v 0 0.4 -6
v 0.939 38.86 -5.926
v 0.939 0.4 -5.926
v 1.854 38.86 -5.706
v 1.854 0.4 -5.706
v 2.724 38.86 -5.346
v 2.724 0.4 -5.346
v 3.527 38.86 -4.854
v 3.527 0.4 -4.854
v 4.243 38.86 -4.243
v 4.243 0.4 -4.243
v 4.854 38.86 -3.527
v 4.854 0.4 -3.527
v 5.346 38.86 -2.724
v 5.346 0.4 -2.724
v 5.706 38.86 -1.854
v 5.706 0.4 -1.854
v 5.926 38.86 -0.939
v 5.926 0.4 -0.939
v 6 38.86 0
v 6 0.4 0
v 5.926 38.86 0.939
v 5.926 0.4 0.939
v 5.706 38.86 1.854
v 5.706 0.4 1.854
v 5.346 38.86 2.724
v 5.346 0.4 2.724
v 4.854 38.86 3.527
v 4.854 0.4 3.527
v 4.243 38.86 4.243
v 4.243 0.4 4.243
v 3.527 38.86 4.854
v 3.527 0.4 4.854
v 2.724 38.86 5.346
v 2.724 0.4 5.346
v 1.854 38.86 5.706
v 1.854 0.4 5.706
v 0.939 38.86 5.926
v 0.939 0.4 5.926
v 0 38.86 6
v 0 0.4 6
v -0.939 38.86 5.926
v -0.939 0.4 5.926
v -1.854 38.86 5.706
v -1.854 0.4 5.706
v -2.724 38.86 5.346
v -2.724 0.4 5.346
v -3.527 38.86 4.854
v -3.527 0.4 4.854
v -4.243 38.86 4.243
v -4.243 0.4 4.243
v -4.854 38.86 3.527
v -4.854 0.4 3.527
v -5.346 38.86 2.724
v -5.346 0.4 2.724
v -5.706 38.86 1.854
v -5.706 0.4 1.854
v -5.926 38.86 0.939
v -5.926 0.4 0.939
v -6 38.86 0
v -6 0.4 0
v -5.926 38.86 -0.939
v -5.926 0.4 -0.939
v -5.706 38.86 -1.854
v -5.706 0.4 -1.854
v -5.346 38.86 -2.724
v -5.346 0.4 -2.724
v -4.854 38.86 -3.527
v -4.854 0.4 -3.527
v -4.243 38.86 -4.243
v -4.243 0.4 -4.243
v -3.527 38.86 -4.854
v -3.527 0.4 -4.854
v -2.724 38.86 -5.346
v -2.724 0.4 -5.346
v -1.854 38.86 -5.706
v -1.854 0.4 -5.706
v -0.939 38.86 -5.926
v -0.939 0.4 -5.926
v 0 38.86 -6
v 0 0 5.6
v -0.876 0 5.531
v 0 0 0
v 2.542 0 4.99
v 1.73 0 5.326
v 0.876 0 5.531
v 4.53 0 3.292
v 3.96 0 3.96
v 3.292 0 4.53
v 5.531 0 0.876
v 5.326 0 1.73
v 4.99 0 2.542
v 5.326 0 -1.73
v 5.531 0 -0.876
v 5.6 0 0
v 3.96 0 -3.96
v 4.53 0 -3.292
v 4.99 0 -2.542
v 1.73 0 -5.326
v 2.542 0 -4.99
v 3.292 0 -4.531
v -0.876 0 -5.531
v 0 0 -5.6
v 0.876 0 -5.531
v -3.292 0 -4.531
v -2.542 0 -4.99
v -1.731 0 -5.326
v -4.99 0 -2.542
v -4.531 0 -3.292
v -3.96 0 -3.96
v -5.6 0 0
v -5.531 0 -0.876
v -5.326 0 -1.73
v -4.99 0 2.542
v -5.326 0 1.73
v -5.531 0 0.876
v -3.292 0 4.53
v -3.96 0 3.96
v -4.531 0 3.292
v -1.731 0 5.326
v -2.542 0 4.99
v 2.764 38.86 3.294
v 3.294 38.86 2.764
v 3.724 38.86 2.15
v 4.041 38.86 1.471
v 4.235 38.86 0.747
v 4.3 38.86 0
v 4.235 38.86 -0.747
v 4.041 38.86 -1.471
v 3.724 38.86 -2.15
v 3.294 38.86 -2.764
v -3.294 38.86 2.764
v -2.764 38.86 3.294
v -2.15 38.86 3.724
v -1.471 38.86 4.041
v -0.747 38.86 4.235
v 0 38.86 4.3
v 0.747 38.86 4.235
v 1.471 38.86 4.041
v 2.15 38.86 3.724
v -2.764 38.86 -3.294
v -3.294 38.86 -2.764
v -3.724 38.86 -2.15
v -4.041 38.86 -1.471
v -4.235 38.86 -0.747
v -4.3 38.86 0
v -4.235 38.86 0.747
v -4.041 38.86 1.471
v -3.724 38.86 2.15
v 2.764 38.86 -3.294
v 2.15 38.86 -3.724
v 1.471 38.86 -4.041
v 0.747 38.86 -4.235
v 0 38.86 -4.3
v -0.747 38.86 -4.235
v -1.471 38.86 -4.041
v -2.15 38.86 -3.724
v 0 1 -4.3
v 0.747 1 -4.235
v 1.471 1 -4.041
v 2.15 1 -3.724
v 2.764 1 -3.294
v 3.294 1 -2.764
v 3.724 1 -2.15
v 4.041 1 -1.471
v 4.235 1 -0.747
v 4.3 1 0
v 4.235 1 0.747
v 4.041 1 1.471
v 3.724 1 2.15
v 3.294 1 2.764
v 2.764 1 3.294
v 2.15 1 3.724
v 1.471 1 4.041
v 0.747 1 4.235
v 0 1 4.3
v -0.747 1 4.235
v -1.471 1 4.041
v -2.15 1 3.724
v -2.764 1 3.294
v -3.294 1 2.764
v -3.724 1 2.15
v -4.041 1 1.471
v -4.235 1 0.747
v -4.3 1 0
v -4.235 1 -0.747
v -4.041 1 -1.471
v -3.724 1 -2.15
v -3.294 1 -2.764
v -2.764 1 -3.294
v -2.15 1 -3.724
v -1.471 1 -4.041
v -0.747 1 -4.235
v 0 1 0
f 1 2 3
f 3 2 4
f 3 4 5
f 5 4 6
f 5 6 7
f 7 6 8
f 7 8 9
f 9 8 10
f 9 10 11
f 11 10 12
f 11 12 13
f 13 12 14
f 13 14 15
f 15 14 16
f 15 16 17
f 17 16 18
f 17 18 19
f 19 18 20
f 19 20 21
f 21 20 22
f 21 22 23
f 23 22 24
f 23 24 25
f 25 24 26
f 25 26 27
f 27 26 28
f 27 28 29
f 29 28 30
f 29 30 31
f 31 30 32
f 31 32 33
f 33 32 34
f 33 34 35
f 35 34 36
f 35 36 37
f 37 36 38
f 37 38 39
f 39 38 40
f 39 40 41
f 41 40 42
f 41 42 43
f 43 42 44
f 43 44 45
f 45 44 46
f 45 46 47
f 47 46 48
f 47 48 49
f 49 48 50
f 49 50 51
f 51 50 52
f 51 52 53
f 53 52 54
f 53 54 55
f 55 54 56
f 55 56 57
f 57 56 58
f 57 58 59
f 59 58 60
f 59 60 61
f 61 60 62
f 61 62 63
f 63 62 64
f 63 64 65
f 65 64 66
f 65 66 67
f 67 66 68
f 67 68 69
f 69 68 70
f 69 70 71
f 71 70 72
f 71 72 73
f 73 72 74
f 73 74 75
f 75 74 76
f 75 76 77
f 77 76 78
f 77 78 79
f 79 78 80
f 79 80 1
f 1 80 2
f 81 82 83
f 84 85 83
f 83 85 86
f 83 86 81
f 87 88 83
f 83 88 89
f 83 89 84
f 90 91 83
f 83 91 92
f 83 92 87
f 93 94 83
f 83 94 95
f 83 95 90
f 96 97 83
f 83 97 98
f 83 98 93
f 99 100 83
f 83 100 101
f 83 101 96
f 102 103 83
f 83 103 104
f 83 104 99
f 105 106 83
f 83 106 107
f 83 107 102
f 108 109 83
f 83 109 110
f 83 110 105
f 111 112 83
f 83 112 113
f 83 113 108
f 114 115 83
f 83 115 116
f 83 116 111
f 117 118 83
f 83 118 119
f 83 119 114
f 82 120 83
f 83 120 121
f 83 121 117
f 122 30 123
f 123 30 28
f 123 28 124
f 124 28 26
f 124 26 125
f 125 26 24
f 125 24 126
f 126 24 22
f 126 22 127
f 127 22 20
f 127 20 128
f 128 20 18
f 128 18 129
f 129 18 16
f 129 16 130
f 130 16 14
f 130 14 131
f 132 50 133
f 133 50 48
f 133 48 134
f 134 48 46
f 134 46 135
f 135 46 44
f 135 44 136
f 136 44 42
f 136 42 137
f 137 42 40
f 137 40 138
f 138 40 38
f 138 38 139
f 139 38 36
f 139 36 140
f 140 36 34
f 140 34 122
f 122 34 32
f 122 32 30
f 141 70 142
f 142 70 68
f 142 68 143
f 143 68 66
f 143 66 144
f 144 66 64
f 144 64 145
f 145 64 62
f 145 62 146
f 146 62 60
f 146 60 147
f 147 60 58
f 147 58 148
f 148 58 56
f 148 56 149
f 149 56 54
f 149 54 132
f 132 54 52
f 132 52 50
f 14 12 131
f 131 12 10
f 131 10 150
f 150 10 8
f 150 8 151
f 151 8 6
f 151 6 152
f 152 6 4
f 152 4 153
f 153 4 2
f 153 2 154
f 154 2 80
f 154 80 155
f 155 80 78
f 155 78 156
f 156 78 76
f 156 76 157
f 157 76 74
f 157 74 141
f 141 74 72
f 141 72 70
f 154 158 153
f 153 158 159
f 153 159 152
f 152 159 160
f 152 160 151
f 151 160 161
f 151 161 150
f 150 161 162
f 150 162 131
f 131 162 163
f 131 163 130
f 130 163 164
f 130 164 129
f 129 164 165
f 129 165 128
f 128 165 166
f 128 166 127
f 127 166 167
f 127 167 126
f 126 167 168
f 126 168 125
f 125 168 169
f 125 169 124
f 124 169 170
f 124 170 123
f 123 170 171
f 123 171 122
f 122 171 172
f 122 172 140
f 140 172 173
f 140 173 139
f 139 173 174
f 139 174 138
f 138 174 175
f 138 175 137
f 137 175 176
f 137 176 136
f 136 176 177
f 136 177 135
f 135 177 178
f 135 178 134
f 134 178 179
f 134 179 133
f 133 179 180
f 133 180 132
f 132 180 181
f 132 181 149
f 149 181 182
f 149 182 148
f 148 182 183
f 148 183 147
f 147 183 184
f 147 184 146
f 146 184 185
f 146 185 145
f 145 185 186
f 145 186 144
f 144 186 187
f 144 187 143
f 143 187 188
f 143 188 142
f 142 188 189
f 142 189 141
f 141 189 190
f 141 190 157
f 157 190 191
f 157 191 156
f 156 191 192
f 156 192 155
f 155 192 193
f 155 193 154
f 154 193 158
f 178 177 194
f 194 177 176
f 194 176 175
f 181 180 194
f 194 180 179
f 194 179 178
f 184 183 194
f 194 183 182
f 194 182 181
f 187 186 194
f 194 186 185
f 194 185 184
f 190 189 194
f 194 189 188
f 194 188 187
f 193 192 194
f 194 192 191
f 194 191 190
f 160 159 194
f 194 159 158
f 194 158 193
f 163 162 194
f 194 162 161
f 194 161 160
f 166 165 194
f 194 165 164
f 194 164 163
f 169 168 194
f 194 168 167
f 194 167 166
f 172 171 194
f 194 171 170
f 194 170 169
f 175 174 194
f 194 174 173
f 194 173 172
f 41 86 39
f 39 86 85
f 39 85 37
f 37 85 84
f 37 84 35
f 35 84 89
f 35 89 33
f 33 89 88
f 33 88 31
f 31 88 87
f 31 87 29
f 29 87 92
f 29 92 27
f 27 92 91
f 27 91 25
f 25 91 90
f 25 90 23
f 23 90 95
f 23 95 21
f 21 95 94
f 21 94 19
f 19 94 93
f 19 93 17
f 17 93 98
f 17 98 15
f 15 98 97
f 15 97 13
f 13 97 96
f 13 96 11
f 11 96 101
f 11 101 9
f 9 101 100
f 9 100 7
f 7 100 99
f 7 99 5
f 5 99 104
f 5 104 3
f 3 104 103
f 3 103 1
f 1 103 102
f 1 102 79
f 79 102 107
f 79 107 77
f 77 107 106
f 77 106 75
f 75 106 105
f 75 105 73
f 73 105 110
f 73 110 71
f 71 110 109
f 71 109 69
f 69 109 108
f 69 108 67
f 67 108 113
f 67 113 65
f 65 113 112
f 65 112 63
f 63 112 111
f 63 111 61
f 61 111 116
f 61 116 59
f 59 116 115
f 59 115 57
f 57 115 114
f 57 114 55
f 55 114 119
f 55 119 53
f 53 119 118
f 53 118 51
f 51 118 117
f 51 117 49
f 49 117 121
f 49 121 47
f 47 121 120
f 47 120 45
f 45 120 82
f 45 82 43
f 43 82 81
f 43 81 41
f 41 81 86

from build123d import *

# Parameters (mm, degrees)
SKETCH1_R           = 6
BOSS_EXTRUDE1_DEPTH = 1
SKETCH2_R           = 6
SKETCH2_R_2         = 4.3
BOSS_EXTRUDE2_DEPTH = 37.86
CHAMFER1_SIZE       = 0.4


with BuildPart() as part:
    # Sketch1 → Boss-Extrude1 (new body)
    with BuildSketch(Plane(origin=(0, 0, 0), x_dir=(1, 0, 0), z_dir=(0, 1, 0))):
        Circle(SKETCH1_R)
    extrude(amount=BOSS_EXTRUDE1_DEPTH)

    # Sketch2 → Boss-Extrude2 (add)
    with BuildSketch(Plane(origin=(0, 1, 0), x_dir=(1, 0, 0), z_dir=(0, 1, 0))):
        Circle(SKETCH2_R)
        Circle(SKETCH2_R_2, mode=Mode.SUBTRACT)
    extrude(amount=BOSS_EXTRUDE2_DEPTH)

    # Chamfer1
    chamfer1_edges = [part.edges().sort_by_distance(p)[0] for p in [
        (-6, 0, 0),
    ]]
    chamfer(chamfer1_edges, length=CHAMFER1_SIZE)


solid = part.part
